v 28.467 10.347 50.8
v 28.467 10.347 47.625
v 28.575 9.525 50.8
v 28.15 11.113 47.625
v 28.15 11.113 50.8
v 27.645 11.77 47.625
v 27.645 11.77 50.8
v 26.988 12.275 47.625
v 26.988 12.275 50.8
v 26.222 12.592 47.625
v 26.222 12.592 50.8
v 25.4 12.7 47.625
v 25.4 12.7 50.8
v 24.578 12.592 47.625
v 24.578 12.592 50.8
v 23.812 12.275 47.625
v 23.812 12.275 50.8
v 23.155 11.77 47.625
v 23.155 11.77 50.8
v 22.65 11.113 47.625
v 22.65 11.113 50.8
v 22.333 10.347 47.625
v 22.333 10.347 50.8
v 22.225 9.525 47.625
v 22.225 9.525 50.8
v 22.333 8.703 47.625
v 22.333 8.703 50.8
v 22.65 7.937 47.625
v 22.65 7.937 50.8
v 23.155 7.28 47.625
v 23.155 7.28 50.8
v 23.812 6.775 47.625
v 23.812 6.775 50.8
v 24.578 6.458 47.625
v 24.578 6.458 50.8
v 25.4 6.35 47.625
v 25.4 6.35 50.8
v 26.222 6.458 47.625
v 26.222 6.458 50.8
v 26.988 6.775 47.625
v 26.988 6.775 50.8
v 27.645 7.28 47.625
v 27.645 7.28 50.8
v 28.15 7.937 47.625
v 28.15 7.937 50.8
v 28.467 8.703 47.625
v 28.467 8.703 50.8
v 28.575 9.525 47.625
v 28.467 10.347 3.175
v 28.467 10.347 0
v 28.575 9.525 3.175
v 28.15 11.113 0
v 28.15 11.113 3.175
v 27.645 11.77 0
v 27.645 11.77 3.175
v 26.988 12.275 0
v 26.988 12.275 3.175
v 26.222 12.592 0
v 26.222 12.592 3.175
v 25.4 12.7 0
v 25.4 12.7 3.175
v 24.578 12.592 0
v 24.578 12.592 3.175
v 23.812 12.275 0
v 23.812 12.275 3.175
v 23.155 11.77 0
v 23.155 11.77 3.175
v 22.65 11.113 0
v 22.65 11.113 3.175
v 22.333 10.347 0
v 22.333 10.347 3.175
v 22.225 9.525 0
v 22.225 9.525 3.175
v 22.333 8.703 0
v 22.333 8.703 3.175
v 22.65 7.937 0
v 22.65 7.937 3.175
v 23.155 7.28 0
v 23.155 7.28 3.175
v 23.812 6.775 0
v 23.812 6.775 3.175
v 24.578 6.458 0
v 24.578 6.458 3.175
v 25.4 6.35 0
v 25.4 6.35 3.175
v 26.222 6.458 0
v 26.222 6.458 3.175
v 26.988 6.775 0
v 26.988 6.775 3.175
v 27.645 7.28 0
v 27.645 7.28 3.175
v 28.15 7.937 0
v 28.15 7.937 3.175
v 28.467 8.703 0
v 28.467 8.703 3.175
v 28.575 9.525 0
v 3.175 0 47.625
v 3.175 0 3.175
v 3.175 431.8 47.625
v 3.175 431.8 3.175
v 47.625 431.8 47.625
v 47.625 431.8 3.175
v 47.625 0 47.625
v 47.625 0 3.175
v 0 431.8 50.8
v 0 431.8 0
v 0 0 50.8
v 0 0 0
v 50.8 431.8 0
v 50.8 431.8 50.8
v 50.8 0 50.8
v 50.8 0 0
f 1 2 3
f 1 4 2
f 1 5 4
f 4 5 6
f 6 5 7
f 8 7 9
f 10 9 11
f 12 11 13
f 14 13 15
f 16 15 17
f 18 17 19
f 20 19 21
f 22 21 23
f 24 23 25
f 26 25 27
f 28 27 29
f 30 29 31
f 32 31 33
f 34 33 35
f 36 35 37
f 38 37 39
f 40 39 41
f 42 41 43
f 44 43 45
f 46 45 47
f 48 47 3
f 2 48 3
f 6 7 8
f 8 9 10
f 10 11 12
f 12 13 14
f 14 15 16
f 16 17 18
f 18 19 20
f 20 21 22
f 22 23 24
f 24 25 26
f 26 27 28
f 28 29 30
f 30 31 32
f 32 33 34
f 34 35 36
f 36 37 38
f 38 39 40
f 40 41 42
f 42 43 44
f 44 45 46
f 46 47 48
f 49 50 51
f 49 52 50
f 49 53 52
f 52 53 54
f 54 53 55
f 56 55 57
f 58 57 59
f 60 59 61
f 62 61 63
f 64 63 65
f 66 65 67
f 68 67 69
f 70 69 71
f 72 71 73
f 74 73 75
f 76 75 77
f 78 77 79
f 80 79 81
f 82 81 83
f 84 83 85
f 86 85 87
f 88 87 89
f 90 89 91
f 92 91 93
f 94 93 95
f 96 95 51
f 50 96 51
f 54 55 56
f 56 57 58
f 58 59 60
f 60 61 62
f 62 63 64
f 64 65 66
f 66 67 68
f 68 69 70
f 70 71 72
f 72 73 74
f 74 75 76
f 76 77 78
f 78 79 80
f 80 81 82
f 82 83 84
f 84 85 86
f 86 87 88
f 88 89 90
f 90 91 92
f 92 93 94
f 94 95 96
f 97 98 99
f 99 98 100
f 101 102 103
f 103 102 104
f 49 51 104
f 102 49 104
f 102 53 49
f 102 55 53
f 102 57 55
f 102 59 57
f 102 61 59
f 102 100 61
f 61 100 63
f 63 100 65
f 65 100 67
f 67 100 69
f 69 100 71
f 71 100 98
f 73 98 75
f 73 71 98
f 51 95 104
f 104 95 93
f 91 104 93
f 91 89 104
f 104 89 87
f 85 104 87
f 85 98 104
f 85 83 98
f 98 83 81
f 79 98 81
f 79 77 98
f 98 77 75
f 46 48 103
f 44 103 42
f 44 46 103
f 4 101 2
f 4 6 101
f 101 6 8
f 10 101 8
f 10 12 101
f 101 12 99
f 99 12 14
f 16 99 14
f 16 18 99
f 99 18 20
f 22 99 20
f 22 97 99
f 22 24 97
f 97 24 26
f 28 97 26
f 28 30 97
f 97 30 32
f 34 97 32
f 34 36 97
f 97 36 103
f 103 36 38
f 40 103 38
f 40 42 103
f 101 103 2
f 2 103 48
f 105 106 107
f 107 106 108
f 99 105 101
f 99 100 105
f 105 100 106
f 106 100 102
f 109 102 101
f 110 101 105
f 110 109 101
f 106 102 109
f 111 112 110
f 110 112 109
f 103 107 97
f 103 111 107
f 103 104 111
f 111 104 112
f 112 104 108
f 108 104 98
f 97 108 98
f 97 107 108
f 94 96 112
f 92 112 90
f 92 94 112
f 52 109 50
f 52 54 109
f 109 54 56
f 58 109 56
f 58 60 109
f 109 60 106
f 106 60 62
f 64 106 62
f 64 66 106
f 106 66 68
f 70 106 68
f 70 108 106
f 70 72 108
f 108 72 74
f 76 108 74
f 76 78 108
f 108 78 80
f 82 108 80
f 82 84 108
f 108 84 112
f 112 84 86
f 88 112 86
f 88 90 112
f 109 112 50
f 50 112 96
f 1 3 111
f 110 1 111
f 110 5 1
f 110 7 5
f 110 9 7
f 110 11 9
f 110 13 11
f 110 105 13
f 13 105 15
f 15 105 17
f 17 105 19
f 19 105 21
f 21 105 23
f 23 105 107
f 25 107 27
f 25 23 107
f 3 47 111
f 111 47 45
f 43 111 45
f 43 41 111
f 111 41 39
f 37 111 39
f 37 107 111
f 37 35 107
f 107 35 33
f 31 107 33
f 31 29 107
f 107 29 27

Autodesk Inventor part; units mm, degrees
ref_plane "YZ Plane" through (0, 0, 0) normal (1, 0, 0) x (0, 1, 0)
ref_plane "XZ Plane" through (0, 0, 0) normal (0, 1, 0) x (-1, 0, 0)
ref_plane "XY Plane" through (0, 0, 0) normal (0, 0, 1) x (1, 0, 0)
sketch "Sketch1" plane through (0, 0, 0) normal (0, 0, 1) x (1, 0, 0)
  line L0 (0, 0) -> (50.8, 0)
  line L1 (50.8, 0) -> (50.8, 431.8)
  line L2 (50.8, 431.8) -> (0, 431.8)
  line L3 (0, 431.8) -> (0, 0)
  dimension "d0" = 50.8
  dimension "d1" = 431.8
extrude "Extrusion1" add sketch "Sketch1" along normal blind 50.8
shell "Shell1" thickness 3.175 removed faces 2 at (33.8667, 431.8, 16.9333) at (16.9333, 0, 16.9333)
sketch "Sketch3" plane through (0, 0, 50.8) normal (0, 0, 1) x (1, 0, 0)
  line L0 (50.8, 0) -> (0, 0) projected
  line L1 (50.8, 431.8) -> (50.8, 0) projected
  circle A0 centre (25.4, 9.525) radius 3.175
  dimension "d10" = 9.525
  dimension "d11" = 25.4
  dimension "d12" = 6.35
extrude "Extrusion3" cut sketch "Sketch3" against normal through all
properties part number "CentralColumn" material "Aluminum-6061"
